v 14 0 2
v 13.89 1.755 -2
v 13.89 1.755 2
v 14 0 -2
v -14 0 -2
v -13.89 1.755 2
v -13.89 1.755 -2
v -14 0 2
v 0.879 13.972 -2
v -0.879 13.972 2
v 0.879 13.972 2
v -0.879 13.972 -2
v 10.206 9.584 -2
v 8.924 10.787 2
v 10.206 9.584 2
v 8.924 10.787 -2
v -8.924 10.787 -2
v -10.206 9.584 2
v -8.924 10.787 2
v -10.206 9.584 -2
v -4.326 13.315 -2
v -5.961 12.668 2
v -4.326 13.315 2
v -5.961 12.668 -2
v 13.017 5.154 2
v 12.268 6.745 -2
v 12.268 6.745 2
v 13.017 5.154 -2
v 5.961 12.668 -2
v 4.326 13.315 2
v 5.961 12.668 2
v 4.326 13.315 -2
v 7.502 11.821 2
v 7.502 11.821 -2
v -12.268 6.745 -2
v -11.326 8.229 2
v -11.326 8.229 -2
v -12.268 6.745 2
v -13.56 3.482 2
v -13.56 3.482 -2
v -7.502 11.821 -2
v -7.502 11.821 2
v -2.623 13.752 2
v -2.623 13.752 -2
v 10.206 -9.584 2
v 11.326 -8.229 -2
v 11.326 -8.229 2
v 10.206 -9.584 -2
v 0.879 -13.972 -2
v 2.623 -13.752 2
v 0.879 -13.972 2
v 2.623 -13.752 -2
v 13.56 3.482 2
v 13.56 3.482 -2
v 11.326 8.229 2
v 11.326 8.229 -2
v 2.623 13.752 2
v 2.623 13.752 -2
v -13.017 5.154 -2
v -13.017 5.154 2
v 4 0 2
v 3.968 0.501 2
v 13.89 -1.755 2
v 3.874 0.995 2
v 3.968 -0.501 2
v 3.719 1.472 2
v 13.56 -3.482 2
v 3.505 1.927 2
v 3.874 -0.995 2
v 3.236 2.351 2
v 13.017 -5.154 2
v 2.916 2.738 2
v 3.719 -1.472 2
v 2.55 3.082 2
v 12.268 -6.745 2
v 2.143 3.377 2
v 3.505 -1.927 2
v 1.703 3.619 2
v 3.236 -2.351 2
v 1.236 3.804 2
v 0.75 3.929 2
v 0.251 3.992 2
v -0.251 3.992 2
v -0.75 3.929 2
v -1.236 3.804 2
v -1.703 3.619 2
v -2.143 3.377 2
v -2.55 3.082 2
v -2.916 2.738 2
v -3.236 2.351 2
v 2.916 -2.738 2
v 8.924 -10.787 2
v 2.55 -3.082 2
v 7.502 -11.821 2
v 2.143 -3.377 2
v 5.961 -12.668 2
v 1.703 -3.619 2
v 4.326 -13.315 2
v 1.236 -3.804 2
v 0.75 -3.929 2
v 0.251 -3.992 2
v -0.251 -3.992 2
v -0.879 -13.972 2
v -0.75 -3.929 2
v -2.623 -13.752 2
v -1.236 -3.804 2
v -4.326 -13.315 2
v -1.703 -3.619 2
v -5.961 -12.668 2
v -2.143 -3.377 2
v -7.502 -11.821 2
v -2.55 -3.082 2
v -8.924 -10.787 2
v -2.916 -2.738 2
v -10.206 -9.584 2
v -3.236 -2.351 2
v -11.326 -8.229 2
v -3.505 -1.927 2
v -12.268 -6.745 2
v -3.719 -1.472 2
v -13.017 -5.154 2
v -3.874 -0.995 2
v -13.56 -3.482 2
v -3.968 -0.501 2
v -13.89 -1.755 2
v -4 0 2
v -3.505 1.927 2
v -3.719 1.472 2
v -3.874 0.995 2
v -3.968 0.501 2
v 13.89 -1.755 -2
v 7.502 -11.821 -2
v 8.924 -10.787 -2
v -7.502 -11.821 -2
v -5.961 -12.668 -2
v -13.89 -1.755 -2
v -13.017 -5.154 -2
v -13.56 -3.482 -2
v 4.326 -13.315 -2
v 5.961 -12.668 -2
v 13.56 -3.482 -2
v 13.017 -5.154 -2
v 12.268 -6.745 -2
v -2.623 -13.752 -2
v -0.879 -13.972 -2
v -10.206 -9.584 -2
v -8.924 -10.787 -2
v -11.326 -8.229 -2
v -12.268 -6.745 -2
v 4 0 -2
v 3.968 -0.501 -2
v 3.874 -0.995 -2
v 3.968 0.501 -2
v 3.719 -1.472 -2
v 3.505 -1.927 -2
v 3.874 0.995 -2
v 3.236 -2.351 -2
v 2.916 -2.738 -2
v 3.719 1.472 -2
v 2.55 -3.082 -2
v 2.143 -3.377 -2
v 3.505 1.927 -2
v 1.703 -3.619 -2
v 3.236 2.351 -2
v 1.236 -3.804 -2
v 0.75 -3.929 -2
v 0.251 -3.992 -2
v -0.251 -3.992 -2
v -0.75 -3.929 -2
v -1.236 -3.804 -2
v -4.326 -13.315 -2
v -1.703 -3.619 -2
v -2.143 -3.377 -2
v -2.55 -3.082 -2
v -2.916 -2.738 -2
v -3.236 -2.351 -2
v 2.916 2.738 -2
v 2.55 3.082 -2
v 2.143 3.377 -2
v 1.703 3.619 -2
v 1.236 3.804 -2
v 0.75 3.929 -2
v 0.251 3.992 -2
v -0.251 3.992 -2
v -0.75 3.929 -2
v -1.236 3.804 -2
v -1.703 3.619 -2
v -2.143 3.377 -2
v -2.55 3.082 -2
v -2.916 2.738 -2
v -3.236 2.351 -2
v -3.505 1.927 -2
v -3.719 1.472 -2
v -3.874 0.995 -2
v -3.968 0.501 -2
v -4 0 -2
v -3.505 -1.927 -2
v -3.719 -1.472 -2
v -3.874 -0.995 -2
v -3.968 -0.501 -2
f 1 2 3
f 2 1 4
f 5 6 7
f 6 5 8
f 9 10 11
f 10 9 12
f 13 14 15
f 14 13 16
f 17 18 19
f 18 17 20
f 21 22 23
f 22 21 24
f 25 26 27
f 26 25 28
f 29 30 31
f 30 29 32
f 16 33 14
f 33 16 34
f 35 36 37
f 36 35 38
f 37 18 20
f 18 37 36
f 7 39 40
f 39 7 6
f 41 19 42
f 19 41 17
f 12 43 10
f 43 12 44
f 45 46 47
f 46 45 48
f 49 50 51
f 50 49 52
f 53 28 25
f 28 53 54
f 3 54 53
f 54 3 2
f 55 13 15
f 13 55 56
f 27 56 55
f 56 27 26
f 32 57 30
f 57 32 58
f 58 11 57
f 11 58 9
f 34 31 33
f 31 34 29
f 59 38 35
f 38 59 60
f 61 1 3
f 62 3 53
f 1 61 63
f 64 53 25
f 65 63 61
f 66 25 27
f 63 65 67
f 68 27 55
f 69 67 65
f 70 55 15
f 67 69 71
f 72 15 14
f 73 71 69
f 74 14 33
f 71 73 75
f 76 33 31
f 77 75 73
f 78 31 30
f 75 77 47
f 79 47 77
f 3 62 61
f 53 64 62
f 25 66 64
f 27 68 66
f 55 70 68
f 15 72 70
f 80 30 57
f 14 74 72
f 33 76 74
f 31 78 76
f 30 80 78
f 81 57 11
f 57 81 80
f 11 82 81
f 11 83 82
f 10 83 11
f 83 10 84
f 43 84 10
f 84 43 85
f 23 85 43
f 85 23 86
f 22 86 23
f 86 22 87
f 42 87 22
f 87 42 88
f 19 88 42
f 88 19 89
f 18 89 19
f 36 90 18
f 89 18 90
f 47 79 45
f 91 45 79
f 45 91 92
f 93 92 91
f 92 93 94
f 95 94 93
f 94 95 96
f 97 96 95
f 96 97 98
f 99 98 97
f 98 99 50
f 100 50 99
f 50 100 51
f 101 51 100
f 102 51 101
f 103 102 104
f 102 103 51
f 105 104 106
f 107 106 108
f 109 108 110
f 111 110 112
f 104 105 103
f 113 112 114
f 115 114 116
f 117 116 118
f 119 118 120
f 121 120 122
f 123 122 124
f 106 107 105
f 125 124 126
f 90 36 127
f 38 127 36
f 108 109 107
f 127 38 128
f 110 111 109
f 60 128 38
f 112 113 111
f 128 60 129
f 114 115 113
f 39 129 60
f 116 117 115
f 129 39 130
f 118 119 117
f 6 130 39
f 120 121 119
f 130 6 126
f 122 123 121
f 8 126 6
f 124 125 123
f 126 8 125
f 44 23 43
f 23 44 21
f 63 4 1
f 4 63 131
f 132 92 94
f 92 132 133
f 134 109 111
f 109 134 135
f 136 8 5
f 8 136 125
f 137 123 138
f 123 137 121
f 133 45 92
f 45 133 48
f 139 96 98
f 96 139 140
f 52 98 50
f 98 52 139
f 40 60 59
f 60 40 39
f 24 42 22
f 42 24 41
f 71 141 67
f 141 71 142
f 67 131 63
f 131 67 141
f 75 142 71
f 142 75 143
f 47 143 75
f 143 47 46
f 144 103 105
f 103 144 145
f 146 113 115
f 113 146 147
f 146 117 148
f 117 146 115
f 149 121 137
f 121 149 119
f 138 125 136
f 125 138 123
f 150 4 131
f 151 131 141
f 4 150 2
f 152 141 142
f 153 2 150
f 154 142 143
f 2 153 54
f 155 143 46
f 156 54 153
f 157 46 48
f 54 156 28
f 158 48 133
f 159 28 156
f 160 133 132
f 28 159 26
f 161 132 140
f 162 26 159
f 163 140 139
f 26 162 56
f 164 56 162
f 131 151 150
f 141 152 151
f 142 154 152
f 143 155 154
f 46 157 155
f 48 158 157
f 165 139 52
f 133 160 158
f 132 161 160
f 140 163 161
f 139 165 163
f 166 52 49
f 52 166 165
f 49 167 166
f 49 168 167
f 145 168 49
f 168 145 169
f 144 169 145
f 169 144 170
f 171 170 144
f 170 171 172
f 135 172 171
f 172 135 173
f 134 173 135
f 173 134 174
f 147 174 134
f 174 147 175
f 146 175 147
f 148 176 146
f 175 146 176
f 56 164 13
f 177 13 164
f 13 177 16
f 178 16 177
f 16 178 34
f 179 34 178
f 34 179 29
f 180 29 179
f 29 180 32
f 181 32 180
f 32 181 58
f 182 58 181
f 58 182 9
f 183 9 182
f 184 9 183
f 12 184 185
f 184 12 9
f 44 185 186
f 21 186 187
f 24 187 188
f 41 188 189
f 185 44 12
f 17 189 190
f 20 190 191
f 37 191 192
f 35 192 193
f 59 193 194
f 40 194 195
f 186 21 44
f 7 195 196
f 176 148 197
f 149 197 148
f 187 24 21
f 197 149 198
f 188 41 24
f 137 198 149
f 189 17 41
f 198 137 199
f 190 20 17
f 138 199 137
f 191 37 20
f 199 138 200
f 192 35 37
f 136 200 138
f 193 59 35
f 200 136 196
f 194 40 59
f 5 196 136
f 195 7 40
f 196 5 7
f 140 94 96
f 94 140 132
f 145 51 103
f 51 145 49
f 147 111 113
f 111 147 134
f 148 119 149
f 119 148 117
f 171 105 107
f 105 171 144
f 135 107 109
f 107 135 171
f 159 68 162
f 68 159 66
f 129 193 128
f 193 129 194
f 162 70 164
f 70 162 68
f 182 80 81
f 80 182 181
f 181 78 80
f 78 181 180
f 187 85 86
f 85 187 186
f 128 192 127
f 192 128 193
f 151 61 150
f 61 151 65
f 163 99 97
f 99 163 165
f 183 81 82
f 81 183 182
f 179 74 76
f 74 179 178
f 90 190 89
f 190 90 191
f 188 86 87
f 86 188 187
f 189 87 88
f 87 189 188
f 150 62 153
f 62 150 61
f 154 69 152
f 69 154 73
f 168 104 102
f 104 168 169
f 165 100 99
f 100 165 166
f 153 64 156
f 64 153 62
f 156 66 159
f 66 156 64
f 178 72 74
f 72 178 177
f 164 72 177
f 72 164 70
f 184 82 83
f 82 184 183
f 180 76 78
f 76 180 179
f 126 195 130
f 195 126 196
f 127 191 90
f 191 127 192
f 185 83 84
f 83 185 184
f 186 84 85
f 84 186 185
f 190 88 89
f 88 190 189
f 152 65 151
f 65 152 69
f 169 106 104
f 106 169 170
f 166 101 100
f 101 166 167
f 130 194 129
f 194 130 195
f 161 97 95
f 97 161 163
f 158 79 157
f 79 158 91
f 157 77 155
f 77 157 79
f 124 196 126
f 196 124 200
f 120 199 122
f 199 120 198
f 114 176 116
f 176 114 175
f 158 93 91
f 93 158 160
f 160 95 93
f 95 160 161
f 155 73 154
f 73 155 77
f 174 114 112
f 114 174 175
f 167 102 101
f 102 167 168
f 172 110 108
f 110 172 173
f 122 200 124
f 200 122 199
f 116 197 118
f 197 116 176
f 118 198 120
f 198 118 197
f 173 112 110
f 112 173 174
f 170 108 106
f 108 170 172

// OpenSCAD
$fn = 50;


difference() {
	union() {
		translate(v = [0, 0, -2.0000000000]) {
			cylinder(h = 4, r = 14.0000000000);
		}
	}
	union() {
		translate(v = [0, 0, -100.0000000000]) {
			cylinder(h = 200, r = 4.0000000000);
		}
	}
}
